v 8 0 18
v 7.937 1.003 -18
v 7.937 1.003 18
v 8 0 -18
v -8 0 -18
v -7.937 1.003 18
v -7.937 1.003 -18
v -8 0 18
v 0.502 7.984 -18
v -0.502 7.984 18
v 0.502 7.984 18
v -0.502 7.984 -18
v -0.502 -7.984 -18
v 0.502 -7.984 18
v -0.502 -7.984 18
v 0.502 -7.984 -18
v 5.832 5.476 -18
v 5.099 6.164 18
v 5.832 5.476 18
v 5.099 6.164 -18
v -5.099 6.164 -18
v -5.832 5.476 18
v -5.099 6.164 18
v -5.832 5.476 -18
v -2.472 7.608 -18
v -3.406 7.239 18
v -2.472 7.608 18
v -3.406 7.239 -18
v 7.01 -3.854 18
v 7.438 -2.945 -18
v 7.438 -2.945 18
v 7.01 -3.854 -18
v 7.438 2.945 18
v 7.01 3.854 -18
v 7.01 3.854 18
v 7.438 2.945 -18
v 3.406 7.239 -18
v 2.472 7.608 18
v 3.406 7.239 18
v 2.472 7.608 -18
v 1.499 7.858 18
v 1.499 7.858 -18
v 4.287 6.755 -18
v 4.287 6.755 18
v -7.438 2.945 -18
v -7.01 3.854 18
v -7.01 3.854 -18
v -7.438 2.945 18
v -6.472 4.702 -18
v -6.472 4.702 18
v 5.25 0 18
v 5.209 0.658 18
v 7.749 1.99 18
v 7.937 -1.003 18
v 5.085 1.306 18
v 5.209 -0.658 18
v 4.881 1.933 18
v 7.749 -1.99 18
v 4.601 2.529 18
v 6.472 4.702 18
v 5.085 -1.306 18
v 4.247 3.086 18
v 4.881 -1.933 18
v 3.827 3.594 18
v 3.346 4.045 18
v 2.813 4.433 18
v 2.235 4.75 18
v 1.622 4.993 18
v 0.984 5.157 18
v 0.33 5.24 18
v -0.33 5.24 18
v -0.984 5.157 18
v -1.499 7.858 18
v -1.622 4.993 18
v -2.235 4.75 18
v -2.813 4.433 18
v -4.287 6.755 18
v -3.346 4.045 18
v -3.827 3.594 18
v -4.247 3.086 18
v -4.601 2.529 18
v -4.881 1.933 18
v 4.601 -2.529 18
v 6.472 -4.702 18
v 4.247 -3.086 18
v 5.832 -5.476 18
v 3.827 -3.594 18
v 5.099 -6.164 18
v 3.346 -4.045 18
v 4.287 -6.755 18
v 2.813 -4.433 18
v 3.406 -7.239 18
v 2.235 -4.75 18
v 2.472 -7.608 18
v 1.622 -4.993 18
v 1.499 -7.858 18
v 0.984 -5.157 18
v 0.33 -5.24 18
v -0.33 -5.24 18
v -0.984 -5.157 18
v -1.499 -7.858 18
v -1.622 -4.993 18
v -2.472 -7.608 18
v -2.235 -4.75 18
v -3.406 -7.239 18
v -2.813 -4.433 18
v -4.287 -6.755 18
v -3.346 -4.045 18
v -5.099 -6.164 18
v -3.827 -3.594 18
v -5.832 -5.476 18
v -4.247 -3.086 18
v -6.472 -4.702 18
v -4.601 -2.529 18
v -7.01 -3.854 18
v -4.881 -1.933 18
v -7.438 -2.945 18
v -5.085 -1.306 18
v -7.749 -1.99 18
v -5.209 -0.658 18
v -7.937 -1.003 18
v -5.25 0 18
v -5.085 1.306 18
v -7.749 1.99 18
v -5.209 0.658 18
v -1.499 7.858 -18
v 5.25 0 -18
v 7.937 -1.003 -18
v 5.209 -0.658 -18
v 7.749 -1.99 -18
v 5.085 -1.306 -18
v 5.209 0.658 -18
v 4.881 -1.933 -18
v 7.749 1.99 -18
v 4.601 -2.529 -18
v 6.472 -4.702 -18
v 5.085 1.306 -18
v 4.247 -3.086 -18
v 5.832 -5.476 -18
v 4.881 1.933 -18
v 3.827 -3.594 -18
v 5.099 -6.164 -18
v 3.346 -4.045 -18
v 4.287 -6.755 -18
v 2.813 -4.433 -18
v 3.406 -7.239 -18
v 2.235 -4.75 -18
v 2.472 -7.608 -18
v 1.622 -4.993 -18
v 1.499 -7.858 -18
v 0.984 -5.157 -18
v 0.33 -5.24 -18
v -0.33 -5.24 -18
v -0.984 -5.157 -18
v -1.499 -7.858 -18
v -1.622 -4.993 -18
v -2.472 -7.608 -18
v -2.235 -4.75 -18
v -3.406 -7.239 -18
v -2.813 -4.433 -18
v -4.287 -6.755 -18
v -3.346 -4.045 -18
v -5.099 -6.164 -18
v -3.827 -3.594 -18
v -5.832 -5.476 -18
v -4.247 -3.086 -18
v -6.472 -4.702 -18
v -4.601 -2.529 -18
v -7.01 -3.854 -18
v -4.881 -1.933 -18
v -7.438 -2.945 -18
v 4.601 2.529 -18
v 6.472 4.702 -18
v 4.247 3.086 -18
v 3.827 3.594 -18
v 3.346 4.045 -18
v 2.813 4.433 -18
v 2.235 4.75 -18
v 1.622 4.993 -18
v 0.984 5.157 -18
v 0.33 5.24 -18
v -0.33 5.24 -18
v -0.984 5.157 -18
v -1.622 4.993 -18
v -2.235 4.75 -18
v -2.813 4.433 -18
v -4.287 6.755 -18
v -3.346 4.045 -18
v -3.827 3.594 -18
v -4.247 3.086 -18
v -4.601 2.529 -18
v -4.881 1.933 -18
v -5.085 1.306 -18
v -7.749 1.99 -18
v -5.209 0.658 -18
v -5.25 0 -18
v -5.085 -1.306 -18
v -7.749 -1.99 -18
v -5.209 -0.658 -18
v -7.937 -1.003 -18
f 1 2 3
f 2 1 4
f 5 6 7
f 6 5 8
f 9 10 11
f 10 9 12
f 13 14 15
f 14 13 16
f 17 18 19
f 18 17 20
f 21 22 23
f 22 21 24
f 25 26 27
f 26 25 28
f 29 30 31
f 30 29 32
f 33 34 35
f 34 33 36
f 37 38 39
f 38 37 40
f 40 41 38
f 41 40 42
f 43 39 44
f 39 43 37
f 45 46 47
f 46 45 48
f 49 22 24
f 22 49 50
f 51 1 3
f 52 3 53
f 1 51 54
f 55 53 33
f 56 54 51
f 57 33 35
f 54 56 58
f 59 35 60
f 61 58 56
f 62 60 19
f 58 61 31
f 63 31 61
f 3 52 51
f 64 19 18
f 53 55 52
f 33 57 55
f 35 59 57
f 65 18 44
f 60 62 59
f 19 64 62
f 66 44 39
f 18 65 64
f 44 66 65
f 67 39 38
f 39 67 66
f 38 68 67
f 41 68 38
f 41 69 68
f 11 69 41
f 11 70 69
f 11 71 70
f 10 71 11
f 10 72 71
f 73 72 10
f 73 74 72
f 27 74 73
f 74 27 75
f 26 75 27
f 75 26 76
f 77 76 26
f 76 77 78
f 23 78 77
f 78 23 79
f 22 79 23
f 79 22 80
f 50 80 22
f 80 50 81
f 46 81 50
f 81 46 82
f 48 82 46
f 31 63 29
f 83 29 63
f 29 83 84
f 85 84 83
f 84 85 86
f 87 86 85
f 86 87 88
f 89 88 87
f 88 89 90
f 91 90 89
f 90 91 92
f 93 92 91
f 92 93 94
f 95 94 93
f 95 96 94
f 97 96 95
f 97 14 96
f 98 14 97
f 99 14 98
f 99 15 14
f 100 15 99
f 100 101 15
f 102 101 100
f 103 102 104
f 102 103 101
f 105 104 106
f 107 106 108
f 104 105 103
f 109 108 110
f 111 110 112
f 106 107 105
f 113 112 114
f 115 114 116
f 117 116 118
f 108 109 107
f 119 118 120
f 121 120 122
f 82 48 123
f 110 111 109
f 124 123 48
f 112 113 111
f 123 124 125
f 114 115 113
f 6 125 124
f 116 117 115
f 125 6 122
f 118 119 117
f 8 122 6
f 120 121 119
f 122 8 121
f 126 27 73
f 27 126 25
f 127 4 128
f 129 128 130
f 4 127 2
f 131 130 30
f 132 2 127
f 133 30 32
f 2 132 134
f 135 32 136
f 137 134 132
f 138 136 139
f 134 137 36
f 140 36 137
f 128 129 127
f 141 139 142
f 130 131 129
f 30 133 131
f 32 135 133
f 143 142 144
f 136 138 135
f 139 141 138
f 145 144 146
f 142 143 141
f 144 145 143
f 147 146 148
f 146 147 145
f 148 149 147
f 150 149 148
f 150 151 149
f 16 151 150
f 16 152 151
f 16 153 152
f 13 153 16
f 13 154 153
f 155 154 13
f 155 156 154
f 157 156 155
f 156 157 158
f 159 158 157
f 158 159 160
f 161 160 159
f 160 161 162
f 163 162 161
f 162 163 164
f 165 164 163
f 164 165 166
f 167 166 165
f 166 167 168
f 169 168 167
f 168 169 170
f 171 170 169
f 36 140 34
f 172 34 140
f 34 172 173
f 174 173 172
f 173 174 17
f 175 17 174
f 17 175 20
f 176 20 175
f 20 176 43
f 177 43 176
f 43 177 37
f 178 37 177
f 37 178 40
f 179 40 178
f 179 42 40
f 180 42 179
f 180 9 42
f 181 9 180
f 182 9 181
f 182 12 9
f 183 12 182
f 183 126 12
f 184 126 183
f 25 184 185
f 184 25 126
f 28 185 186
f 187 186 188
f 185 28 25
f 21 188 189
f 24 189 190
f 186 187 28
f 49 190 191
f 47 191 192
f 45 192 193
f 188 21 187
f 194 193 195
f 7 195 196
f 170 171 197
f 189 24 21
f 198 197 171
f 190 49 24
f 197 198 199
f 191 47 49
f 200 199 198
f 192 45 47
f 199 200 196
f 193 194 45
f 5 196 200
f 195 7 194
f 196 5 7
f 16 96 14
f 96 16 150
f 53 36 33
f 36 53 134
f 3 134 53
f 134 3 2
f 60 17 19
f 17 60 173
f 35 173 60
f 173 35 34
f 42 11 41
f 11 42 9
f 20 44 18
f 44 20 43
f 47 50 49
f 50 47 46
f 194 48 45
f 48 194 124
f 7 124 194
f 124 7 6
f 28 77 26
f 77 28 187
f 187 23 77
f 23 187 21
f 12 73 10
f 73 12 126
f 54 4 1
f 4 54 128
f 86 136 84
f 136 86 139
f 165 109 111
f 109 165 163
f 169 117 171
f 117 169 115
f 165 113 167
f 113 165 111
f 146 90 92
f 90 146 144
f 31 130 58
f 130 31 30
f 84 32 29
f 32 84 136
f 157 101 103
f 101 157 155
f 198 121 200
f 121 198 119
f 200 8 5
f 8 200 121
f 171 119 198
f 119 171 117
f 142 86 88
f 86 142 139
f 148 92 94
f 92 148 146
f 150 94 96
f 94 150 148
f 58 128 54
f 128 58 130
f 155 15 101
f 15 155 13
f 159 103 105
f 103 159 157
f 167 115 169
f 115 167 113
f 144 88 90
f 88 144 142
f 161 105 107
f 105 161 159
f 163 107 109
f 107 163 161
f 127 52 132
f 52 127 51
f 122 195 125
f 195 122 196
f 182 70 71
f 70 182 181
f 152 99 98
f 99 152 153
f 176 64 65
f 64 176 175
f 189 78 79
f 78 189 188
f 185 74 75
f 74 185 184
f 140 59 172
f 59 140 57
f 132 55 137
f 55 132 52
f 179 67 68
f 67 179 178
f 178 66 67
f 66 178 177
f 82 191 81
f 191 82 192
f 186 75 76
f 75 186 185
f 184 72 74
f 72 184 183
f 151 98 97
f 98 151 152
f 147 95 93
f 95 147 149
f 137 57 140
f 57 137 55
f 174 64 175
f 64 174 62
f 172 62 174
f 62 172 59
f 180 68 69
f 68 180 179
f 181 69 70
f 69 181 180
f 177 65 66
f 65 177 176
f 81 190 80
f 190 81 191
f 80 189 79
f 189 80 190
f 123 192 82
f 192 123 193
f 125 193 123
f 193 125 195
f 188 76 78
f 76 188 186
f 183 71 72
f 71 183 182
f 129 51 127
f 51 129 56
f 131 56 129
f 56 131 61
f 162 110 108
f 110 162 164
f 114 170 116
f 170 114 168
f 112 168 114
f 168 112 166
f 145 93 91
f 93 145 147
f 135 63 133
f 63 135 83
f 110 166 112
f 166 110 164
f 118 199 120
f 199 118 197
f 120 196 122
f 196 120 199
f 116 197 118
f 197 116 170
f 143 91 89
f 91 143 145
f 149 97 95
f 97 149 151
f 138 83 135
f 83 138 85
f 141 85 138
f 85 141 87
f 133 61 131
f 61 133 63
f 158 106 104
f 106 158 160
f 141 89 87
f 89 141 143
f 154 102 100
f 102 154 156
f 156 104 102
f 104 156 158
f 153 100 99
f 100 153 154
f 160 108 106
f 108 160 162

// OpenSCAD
$fn = 50;


difference() {
	union() {
		translate(v = [0, 0, -18.0000000000]) {
			cylinder(h = 36, r = 8.0000000000);
		}
	}
	union() {
		translate(v = [0, 0, -100.0000000000]) {
			cylinder(h = 200, r = 5.2500000000);
		}
	}
}
